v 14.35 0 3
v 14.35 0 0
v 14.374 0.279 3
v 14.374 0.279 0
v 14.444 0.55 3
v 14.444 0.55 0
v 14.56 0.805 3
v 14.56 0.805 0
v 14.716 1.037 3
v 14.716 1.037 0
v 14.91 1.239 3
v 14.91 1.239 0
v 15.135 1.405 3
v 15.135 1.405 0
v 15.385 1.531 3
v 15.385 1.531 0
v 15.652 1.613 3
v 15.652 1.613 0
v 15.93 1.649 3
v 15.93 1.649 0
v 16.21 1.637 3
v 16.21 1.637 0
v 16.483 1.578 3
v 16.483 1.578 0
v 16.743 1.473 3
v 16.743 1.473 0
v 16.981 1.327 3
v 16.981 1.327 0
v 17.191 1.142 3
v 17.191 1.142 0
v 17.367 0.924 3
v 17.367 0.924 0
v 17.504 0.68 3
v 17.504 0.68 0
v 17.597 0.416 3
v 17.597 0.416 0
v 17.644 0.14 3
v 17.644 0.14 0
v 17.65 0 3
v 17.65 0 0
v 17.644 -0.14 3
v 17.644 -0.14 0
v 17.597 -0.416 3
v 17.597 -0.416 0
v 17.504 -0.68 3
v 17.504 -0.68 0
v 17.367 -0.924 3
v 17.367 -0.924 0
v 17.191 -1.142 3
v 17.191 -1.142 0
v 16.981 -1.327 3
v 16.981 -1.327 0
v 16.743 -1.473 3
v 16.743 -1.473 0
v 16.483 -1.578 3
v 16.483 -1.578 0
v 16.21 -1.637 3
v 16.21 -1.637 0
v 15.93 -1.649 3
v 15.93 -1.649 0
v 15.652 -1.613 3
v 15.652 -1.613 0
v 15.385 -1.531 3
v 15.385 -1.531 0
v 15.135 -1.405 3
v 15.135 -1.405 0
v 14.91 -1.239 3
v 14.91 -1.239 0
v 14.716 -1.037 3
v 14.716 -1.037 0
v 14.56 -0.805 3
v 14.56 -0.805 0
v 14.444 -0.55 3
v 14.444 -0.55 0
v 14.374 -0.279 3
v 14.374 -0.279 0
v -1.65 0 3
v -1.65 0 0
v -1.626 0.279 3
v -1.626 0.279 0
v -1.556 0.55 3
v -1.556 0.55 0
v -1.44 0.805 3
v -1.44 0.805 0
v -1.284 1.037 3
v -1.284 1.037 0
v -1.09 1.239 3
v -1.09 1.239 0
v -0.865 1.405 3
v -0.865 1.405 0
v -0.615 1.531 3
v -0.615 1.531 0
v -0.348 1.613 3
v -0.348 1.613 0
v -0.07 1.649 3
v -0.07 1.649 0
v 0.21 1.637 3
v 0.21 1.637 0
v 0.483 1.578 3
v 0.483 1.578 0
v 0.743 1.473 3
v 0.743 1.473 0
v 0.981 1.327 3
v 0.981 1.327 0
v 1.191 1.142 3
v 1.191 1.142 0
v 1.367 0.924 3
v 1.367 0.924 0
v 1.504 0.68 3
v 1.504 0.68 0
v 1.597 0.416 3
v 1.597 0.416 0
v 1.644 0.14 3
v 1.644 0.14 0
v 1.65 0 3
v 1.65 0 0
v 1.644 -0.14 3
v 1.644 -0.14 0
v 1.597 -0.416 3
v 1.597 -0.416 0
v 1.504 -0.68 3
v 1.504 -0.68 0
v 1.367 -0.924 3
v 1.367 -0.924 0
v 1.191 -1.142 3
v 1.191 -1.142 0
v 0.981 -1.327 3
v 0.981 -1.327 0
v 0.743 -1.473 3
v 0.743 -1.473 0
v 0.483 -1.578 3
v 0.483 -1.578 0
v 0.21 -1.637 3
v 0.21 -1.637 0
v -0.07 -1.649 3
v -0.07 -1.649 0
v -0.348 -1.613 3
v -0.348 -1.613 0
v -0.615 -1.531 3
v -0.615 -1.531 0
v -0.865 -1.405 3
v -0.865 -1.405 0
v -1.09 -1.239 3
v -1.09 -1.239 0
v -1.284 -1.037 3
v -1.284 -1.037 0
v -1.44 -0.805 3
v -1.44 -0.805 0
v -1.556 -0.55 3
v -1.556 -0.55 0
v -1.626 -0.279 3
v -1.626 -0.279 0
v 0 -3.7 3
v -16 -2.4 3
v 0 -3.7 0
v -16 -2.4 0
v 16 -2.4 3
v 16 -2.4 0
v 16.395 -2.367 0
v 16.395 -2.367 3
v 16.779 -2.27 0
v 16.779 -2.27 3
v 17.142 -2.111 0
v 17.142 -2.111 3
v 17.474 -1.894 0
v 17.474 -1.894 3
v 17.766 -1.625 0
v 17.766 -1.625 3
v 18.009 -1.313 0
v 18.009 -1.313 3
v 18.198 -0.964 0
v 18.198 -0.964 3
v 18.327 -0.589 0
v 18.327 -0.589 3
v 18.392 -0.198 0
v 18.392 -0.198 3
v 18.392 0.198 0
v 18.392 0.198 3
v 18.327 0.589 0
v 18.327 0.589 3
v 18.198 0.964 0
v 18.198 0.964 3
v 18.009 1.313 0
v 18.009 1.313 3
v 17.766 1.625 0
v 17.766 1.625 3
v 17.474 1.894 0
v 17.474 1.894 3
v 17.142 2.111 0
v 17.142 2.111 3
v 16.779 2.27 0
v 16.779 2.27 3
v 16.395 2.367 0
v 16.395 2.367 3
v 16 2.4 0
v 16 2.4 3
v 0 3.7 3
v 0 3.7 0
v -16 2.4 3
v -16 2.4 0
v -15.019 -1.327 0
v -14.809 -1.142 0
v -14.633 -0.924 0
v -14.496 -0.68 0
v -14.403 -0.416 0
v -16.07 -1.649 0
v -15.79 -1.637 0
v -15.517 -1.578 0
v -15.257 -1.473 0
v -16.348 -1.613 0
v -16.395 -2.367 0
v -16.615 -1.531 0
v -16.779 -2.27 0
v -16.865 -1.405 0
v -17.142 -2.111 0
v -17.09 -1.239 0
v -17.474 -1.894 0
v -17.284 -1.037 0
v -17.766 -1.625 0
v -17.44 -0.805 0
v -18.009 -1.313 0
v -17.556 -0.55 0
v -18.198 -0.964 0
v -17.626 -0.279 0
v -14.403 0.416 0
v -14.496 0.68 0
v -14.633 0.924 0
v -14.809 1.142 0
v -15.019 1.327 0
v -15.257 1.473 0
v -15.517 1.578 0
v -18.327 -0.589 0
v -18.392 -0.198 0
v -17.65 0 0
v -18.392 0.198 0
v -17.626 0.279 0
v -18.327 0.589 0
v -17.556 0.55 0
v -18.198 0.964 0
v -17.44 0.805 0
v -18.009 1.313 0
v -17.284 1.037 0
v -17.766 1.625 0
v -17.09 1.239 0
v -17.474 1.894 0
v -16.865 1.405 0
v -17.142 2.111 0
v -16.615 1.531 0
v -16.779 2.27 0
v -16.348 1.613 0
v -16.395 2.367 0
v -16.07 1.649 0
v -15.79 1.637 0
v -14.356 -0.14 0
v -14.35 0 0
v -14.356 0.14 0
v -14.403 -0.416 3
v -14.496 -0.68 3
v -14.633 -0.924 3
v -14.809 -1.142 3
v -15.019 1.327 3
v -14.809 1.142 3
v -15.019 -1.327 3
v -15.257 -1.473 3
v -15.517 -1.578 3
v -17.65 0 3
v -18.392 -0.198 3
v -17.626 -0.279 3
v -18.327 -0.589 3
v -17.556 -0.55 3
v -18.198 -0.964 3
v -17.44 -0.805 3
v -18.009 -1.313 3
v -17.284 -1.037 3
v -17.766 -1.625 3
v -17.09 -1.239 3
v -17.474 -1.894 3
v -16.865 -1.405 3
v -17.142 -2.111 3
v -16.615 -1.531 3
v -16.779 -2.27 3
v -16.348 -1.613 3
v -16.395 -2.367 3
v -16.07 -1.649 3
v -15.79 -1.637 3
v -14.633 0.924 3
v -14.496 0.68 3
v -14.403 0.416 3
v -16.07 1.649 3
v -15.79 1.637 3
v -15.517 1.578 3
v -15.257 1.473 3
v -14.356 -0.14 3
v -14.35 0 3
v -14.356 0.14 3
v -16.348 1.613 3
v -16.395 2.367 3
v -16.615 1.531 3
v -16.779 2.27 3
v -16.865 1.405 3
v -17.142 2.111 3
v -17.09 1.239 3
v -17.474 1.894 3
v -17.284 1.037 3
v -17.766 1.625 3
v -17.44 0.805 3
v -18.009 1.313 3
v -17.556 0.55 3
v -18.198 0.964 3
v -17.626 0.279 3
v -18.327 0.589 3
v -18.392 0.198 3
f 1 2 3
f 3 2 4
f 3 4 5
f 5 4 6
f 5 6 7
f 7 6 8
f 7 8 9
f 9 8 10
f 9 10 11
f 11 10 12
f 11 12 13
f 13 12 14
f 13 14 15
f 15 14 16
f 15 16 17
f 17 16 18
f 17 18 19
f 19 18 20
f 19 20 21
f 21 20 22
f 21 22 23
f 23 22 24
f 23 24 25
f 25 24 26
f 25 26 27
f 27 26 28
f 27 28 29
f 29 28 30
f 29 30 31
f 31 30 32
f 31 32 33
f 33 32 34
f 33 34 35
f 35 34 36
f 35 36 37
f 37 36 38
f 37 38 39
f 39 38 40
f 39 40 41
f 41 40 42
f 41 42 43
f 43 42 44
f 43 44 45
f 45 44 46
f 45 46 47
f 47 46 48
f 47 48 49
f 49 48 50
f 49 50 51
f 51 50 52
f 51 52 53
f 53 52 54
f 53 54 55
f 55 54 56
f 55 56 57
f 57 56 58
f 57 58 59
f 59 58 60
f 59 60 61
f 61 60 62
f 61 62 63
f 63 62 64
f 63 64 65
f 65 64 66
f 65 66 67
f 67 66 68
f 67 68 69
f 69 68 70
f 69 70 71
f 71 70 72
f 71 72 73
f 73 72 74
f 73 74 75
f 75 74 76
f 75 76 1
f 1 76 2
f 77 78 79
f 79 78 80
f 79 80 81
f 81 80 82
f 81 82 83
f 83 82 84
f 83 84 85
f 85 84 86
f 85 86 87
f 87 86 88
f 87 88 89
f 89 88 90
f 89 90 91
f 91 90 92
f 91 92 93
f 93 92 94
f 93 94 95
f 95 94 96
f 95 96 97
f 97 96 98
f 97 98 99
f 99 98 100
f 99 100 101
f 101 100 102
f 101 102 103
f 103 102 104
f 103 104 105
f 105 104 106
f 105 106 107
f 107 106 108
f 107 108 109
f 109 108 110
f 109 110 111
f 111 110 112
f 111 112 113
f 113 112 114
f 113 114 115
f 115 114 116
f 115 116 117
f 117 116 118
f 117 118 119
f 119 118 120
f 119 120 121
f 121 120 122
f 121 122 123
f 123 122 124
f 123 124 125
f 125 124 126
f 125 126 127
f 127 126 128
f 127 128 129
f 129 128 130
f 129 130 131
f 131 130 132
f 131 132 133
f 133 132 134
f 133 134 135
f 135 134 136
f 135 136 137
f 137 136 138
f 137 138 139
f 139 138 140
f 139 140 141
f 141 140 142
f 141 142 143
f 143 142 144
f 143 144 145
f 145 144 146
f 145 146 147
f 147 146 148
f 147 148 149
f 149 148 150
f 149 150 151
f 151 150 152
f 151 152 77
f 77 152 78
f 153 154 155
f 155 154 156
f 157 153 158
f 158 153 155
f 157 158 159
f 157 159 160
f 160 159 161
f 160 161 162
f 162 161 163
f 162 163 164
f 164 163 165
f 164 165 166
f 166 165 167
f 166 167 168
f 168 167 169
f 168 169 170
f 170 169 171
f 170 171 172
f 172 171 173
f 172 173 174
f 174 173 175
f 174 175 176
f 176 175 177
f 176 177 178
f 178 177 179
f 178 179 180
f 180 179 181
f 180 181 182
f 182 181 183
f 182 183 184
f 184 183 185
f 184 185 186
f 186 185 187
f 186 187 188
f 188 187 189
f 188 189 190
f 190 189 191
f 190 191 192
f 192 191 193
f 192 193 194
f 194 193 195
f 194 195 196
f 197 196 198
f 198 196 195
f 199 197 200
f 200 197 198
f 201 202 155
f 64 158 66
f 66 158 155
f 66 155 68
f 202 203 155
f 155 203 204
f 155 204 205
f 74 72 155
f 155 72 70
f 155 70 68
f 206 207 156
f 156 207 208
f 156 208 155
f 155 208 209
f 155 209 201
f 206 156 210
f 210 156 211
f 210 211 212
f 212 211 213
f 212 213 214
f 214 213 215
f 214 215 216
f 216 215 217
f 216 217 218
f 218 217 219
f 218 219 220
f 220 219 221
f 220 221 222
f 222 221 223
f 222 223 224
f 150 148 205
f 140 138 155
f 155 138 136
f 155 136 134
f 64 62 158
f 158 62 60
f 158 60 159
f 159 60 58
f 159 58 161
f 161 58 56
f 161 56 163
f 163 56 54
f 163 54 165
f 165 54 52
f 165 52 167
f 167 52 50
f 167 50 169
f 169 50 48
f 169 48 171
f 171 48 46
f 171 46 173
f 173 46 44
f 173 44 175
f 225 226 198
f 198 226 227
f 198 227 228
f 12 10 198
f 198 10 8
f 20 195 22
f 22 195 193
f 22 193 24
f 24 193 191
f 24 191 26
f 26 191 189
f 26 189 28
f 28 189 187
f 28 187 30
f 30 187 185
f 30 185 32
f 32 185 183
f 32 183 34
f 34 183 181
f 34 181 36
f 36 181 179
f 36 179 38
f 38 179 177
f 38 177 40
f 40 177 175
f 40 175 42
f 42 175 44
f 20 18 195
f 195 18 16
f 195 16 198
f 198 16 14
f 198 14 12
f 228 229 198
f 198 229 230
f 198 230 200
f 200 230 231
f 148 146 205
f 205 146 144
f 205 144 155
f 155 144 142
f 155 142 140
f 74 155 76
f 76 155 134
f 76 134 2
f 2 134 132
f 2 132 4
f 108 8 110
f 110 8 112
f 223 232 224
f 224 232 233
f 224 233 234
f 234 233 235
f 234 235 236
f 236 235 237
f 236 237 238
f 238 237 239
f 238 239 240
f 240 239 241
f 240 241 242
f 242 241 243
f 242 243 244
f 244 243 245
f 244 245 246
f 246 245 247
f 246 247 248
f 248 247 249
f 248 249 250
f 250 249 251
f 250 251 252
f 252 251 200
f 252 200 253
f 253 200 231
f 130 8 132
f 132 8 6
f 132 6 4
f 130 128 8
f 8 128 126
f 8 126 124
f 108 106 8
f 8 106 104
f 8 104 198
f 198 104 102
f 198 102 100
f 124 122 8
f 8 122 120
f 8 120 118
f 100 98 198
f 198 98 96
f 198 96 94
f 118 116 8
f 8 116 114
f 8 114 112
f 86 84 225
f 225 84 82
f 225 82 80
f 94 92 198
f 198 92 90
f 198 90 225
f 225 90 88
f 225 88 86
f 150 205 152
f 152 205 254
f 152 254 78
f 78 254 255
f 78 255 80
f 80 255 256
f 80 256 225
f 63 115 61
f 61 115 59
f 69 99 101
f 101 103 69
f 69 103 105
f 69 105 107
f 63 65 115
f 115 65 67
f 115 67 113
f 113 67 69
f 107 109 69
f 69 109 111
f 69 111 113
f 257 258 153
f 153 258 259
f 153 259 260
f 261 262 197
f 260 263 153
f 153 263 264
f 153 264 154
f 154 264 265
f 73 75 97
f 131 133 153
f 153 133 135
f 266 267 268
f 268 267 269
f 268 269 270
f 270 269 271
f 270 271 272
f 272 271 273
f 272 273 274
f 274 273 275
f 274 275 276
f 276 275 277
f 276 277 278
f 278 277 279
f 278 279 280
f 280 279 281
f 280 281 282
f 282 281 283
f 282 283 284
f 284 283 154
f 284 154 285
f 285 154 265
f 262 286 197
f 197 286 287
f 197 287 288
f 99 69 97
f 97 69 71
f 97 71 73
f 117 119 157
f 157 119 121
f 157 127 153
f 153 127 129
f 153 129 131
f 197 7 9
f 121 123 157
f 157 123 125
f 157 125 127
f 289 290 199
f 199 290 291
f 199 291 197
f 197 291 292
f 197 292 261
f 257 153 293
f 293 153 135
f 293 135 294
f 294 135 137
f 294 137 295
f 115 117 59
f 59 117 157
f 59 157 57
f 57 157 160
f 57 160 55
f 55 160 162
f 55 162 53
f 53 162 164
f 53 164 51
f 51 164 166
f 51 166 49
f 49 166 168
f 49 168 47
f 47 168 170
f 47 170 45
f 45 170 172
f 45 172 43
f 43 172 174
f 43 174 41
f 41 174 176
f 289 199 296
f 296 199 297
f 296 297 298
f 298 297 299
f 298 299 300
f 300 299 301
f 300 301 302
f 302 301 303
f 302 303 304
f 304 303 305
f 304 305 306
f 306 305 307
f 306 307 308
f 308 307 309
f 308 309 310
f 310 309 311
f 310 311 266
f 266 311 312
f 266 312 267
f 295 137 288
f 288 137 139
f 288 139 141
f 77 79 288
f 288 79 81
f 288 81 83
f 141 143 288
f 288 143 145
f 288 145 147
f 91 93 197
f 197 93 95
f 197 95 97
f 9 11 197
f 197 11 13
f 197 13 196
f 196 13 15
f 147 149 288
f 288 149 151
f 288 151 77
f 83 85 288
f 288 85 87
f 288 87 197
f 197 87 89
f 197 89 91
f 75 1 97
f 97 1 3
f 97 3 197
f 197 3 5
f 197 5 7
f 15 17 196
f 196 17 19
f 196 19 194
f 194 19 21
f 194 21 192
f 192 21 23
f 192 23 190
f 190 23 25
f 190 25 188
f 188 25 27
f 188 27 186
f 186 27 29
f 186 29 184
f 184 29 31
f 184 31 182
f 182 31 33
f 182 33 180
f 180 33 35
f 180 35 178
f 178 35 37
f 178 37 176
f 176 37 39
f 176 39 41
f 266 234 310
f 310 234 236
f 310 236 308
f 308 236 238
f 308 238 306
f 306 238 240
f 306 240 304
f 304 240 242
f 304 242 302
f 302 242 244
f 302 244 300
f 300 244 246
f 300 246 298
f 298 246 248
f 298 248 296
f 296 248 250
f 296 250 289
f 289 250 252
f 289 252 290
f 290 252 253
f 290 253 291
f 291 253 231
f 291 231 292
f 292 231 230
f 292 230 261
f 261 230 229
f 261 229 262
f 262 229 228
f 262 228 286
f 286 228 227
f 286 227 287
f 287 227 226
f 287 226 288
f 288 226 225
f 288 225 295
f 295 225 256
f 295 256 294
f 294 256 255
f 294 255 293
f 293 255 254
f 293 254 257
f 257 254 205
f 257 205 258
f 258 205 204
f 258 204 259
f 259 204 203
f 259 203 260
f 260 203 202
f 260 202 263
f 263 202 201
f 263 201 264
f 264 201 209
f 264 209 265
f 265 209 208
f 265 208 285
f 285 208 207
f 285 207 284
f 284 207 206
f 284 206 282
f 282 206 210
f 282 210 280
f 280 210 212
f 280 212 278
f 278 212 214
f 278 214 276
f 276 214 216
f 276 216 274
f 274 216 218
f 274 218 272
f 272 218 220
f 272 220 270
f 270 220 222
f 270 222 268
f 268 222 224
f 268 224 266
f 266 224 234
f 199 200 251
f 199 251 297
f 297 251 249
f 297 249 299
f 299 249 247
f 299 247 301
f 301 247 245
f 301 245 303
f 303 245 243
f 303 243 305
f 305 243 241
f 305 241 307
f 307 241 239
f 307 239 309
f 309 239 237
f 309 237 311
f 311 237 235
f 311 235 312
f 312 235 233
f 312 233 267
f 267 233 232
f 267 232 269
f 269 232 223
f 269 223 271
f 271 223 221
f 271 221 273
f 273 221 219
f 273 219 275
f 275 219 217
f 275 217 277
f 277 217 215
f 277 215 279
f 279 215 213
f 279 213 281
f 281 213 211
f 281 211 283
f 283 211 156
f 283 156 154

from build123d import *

# Parameters (mm, degrees)
SKETCH_1_R      = 1.65
EXTRUDE_1_DEPTH = 3


with BuildPart() as part:
    # 草图1 → 凸台-拉伸1 (new body)
    with BuildSketch(Plane.XY):
        with BuildLine():
            ThreePointArc((-16, 2.4), (-18.4, 0), (-16, -2.4))
            Line((-16, -2.4), (0, -3.7))
            Line((0, -3.7), (16, -2.4))
            ThreePointArc((16, -2.4), (18.4, 0), (16, 2.4))
            Line((16, 2.4), (0, 3.7))
            Line((0, 3.7), (-16, 2.4))
        make_face()
        with Locations((-16, 0)):
            Circle(SKETCH_1_R, mode=Mode.SUBTRACT)
        Circle(SKETCH_1_R, mode=Mode.SUBTRACT)
        with Locations((16, 0)):
            Circle(SKETCH_1_R, mode=Mode.SUBTRACT)
    extrude(amount=EXTRUDE_1_DEPTH)


solid = part.part
